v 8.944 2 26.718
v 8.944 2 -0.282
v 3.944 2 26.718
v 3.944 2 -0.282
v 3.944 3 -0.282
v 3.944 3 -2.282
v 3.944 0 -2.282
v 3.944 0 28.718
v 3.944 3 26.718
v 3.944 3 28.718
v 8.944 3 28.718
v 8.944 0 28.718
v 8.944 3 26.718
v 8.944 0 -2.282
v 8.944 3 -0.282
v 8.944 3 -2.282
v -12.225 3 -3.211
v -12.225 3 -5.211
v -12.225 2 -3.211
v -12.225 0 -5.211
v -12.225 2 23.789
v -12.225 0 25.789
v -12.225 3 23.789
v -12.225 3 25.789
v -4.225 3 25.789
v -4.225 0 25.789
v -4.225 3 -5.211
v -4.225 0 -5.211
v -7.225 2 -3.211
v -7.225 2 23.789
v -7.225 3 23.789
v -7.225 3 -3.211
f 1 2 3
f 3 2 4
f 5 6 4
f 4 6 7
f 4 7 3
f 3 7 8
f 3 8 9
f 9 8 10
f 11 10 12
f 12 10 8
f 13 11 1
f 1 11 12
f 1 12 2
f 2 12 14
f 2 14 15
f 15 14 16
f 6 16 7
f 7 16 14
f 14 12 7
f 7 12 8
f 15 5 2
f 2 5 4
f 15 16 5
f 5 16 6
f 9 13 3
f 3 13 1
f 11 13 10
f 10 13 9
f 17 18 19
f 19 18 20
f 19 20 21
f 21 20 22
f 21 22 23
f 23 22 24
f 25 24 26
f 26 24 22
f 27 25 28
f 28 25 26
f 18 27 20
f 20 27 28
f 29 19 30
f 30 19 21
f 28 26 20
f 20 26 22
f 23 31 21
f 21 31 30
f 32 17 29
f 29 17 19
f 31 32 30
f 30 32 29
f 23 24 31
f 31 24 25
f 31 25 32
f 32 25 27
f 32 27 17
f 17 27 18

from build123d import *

# Parameters (mm, degrees)
SKETCH1_W             = 8
SKETCH1_H             = 31
BOSS_EXTRUDE1_DEPTH   = 2
SKETCH1_W_2           = 5
BOSS_EXTRUDE1_2_DEPTH = 2
SKETCH2_W             = 5
SKETCH2_H             = 2
BOSS_EXTRUDE2_DEPTH   = 1


with BuildPart() as part:
    # Sketch1 → Boss-Extrude1 (new body)
    with BuildSketch(Plane(origin=(0, 0, 0), x_dir=(1, 0, 0), z_dir=(0, 1, 0))):
        with Locations((-8.225352113, -10.288732394)):
            Rectangle(SKETCH1_W, SKETCH1_H)
    extrude(amount=BOSS_EXTRUDE1_DEPTH)



with BuildPart() as body_2:
    # Sketch1 → Boss-Extrude1 2 (new body)
    with BuildSketch(Plane(origin=(0, 0, 0), x_dir=(1, 0, 0), z_dir=(0, 1, 0))):
        with Locations((6.443661972, -13.218309859)):
            Rectangle(SKETCH1_W_2, SKETCH1_H)
    extrude(amount=BOSS_EXTRUDE1_2_DEPTH)


with BuildPart() as part_1:
    add(part.part)

    add(body_2.part)  # Boss-Extrude2 merges body 2
    # Sketch2 → Boss-Extrude2 (add)
    with BuildSketch(Plane(origin=(0, 2, 0), x_dir=(1, 0, 0), z_dir=(0, 1, 0))):
        Polygon((-12.225352113, -23.788732394), (-12.225352113, -25.788732394), (-4.225352113, -25.788732394), (-4.225352113, -23.788732394), (-4.225352113, 3.211267606), (-4.225352113, 5.211267606), (-12.225352113, 5.211267606), (-12.225352113, 3.211267606), (-7.225352113, 3.211267606), (-7.225352113, -23.788732394), align=None)
        with Locations((6.443661972, 1.281690141)):
            Rectangle(SKETCH2_W, SKETCH2_H)
        with Locations((6.443661972, -27.718309859)):
            Rectangle(SKETCH2_W, SKETCH2_H)
    extrude(amount=BOSS_EXTRUDE2_DEPTH)


solid = part_1.part
